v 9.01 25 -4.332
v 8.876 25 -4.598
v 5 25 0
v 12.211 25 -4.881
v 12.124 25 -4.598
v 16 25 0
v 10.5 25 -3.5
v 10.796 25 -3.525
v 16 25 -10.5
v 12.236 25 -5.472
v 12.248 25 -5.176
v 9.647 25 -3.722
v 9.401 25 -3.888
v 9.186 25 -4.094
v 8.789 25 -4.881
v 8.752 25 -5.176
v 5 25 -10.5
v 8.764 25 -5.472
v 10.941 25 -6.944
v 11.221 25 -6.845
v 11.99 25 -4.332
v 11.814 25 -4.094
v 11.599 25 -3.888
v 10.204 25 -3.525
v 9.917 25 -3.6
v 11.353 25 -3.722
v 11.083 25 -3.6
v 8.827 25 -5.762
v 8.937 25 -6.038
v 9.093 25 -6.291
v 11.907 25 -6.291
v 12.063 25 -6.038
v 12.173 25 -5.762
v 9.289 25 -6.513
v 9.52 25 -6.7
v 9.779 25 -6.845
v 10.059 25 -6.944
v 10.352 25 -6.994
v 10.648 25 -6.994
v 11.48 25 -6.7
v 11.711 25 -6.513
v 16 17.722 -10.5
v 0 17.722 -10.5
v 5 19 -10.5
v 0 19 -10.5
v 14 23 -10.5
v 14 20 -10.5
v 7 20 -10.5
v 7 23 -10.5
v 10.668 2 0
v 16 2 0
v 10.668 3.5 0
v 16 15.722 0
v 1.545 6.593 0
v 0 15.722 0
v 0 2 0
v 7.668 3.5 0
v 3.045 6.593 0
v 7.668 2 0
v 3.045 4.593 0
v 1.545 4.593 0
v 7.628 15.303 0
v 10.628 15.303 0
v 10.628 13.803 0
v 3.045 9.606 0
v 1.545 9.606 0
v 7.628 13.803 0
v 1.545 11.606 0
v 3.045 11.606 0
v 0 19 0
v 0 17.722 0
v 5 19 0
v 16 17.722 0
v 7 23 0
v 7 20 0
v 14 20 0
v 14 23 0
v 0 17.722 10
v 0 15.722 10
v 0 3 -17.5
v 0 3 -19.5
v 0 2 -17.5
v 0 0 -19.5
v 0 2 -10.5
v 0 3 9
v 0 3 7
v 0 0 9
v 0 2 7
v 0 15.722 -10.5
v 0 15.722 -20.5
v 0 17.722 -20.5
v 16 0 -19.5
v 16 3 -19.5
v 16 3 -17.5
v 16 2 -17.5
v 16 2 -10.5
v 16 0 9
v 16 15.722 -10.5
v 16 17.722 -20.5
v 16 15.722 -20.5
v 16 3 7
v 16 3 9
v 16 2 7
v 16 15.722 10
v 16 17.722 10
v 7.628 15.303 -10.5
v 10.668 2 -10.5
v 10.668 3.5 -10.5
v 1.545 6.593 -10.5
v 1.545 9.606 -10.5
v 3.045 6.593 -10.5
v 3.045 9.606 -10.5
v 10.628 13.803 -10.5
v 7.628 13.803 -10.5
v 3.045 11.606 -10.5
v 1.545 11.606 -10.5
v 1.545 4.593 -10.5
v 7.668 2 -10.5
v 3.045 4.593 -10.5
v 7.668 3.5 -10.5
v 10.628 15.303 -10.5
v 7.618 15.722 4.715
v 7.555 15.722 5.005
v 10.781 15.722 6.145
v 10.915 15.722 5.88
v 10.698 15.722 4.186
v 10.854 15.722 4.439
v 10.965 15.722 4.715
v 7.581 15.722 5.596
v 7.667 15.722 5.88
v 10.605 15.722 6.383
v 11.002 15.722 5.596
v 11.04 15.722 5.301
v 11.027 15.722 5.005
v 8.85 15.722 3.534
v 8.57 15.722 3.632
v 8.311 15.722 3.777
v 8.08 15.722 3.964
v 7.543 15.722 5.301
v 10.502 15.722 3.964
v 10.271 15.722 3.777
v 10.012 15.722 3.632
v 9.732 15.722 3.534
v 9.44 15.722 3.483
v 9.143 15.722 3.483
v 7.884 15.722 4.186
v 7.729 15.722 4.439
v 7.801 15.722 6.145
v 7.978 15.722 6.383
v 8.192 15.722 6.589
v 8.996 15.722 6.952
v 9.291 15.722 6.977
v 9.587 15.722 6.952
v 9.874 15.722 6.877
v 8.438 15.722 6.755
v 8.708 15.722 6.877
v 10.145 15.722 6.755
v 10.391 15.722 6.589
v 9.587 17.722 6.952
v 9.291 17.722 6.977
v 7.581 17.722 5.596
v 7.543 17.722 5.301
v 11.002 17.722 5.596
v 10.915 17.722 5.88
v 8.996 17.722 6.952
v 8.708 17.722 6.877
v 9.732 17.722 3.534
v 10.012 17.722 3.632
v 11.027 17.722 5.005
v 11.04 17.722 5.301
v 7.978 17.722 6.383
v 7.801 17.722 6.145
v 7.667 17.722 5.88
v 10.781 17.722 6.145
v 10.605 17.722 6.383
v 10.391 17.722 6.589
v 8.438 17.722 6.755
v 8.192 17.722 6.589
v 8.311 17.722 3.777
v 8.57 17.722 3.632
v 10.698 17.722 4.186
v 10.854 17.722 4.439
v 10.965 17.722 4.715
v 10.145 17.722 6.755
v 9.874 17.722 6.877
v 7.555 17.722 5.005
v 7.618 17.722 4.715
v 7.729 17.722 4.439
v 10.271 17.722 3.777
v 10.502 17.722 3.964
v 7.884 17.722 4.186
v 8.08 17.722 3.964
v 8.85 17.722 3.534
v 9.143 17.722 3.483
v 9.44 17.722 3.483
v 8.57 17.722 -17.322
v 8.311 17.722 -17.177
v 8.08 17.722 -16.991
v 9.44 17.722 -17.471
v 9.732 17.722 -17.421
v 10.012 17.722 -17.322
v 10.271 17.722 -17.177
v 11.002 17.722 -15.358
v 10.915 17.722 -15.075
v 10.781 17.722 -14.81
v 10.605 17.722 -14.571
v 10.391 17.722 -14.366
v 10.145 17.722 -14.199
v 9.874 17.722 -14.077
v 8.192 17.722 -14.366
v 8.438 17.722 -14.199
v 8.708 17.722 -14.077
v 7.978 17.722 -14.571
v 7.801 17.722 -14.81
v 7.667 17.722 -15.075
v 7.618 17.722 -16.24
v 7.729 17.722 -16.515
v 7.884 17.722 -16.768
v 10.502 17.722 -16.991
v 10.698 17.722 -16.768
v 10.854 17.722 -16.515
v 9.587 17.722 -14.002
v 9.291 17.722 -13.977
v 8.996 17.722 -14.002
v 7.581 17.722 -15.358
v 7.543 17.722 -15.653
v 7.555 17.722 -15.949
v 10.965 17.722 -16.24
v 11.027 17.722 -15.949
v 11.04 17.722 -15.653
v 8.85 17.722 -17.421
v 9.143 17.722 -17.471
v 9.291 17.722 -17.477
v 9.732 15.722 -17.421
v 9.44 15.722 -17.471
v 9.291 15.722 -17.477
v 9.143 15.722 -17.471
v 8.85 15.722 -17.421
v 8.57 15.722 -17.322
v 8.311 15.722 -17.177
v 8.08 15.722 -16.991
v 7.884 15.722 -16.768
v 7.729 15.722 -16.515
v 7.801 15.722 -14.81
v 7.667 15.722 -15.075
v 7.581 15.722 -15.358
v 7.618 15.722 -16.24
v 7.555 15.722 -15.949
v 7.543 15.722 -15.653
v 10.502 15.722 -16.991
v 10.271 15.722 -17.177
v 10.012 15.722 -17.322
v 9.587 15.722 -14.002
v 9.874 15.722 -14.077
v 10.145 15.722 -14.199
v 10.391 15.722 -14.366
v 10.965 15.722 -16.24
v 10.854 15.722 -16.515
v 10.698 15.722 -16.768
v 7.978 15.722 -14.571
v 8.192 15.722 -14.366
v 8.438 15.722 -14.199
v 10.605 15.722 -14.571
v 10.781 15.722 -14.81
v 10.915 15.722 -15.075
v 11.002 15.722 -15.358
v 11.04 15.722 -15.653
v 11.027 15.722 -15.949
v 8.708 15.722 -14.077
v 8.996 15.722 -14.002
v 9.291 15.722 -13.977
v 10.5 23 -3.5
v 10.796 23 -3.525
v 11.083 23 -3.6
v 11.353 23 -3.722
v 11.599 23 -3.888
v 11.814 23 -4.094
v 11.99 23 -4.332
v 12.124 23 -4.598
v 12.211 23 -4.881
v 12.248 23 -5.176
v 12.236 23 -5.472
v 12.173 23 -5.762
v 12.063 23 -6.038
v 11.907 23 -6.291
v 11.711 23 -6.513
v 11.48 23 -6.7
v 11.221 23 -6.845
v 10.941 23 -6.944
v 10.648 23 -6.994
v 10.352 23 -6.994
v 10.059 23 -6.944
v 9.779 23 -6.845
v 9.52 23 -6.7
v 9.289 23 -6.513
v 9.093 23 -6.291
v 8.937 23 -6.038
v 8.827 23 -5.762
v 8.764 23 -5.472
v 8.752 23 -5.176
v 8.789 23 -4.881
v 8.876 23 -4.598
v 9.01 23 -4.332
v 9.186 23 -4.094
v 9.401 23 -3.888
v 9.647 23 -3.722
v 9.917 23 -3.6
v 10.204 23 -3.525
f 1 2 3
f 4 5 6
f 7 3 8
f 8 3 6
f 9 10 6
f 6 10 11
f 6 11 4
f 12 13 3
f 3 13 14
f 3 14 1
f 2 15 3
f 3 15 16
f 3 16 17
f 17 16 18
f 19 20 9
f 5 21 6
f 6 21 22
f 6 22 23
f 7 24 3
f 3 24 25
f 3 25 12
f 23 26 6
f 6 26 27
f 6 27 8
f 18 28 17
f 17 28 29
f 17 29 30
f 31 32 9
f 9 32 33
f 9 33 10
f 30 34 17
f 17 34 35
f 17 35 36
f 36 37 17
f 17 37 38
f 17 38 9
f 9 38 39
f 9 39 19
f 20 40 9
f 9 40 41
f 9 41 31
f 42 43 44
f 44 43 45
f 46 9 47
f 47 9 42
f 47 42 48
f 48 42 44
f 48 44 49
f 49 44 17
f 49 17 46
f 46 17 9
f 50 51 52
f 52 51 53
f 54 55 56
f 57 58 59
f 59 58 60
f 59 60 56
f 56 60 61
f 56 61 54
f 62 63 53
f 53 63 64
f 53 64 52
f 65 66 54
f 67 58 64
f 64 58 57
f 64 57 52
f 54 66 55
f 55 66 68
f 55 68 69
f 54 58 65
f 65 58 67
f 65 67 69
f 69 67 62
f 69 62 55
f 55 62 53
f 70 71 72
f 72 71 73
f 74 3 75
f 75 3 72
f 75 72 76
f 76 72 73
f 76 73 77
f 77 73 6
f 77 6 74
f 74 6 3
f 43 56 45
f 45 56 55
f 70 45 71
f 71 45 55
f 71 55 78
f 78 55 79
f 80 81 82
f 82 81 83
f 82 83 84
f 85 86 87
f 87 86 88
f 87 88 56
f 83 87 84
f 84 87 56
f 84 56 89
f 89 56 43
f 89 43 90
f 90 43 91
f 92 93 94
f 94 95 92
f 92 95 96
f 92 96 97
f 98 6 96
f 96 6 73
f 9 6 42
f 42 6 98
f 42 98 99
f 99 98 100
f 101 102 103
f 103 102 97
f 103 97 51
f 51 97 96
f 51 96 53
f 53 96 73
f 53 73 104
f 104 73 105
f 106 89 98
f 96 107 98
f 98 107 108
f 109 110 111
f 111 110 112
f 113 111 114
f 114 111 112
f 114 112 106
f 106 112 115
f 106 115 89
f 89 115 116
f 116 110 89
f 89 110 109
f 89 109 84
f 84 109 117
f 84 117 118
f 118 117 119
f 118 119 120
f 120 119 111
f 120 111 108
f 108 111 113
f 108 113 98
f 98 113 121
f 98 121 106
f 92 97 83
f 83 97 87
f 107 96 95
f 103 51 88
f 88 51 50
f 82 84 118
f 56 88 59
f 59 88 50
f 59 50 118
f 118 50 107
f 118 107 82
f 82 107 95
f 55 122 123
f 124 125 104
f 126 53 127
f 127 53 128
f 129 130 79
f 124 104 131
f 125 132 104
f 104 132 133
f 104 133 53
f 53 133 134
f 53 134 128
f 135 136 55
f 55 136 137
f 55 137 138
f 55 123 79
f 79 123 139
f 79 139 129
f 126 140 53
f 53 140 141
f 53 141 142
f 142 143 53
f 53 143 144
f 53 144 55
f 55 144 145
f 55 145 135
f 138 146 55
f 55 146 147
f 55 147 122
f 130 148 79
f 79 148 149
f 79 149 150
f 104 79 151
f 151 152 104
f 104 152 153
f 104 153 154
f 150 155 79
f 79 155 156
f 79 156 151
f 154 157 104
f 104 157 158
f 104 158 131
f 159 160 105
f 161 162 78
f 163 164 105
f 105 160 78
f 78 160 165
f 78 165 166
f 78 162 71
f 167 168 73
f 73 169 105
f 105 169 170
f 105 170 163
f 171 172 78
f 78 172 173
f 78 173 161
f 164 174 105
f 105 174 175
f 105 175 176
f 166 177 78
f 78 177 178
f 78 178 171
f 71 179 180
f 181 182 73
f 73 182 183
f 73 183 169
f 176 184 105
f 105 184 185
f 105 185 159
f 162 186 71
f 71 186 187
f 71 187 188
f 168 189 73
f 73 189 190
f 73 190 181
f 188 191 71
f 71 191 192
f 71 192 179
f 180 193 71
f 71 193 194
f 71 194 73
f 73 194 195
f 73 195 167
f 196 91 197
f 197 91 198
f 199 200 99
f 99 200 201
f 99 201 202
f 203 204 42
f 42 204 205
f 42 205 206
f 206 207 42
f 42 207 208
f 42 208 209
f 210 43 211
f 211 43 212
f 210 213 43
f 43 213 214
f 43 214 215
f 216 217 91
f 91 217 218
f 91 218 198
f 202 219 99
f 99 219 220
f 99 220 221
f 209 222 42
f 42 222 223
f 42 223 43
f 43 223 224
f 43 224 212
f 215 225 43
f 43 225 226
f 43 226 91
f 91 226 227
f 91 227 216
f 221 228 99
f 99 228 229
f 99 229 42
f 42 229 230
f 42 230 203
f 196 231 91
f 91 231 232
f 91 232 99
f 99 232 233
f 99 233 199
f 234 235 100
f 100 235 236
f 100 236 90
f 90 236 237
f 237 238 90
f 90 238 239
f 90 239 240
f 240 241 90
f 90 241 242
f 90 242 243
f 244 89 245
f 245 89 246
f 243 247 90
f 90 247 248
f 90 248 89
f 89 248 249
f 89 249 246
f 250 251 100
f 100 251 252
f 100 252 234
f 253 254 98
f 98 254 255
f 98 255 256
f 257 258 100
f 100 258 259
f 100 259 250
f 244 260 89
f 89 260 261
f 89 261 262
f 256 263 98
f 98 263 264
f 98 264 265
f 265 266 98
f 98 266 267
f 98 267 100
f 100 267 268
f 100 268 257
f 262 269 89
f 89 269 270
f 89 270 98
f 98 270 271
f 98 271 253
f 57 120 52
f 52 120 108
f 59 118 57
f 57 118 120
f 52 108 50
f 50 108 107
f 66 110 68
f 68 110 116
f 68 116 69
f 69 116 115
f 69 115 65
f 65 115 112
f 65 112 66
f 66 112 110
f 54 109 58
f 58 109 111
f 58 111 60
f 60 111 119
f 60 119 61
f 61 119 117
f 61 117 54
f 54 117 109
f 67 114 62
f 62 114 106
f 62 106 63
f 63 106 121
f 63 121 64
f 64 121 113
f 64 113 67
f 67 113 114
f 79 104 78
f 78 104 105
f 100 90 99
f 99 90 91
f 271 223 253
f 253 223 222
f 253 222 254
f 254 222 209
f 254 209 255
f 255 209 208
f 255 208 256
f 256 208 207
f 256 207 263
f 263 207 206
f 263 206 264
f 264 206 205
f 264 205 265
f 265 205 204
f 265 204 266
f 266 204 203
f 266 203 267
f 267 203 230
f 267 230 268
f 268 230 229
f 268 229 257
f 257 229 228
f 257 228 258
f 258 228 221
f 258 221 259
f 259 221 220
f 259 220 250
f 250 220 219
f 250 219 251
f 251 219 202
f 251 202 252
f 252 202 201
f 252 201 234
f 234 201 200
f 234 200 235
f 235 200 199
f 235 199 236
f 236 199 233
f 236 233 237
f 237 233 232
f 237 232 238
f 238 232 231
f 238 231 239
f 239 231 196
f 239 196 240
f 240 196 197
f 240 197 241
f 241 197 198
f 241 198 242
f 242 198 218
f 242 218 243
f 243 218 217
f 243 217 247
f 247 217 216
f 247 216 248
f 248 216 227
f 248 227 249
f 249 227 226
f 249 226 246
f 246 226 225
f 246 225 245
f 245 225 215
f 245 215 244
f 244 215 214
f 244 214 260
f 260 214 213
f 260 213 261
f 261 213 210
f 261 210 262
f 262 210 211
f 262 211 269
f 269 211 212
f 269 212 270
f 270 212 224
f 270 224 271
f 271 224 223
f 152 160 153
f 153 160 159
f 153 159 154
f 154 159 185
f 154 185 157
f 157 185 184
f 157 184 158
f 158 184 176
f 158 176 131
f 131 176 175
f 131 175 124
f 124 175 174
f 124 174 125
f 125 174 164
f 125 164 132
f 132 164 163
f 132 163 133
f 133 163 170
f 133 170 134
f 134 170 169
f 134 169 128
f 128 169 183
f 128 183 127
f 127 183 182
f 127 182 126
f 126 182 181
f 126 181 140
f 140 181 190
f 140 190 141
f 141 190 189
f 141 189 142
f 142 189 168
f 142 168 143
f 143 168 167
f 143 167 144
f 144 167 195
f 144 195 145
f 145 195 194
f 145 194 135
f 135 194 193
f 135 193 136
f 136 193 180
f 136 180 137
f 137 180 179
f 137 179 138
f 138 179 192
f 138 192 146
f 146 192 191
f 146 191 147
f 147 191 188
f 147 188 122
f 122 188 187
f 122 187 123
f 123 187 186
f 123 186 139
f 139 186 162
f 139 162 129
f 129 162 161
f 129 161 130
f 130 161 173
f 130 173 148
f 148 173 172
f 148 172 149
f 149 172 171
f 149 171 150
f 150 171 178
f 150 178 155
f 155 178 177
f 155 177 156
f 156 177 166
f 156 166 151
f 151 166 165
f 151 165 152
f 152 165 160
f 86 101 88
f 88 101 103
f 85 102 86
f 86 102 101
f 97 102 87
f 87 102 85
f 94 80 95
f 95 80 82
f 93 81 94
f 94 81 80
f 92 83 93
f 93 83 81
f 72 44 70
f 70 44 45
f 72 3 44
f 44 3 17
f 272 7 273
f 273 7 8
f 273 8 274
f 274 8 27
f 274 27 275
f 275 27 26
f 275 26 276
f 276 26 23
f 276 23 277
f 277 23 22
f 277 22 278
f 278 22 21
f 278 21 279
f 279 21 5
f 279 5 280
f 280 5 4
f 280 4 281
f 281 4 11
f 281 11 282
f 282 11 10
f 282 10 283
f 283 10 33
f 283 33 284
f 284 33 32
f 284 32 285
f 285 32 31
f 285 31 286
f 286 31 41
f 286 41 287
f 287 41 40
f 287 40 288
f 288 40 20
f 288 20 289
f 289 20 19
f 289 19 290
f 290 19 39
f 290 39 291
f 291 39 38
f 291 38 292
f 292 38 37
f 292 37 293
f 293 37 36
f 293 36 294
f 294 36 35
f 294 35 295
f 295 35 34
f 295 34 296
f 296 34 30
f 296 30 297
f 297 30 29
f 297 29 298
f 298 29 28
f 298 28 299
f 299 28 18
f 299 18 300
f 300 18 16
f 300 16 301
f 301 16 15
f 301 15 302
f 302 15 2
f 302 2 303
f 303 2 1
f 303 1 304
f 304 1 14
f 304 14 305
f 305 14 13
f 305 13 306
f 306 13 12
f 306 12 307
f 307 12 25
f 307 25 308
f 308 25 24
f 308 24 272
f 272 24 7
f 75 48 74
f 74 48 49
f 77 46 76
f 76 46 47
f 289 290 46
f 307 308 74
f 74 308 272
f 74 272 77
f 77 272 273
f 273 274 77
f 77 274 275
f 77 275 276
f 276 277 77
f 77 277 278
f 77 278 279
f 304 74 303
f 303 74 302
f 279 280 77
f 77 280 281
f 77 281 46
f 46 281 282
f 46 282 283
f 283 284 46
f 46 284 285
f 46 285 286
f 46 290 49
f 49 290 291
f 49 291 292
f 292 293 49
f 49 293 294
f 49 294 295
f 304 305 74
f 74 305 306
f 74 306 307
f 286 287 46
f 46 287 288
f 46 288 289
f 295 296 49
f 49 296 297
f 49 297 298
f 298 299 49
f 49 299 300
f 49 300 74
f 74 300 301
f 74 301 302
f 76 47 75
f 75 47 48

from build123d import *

# Parameters (mm, degrees)
SKETCH1_W           = 16
SKETCH1_H           = 10.5
BOSS_EXTRUDE1_DEPTH = 25
SKETCH3_W           = 16
SKETCH3_H           = 2
BOSS_EXTRUDE2_DEPTH = 7
BOSS_EXTRUDE5_START = -10.5
SKETCH3_2_W         = 16
SKETCH3_2_H         = 2
BOSS_EXTRUDE5_DEPTH = 7
SKETCH2_W           = 3
SKETCH2_H           = 1.5
SKETCH2_W_2         = 1.5
SKETCH2_H_2         = 2
CUT_EXTRUDE1_DEPTH  = 20
SKETCH5_W           = 16
SKETCH5_H           = 2
BOSS_EXTRUDE3_DEPTH = 3
BOSS_EXTRUDE6_START = -24.5
SKETCH5_2_W         = 16
SKETCH5_2_H         = 2
BOSS_EXTRUDE6_DEPTH = 3
SKETCH4_R           = 1.75
CUT_EXTRUDE2_DEPTH  = 10
SKETCH6_W           = 16
SKETCH6_H           = 3
BOSS_EXTRUDE4_DEPTH = 2
BOSS_EXTRUDE7_START = -24.5
SKETCH6_2_W         = 16
SKETCH6_2_H         = 3
BOSS_EXTRUDE7_DEPTH = 2
SKETCH7_W           = 10.5
SKETCH7_H           = 6
CUT_EXTRUDE3_DEPTH  = 5
SKETCH8_R           = 1.75
CUT_EXTRUDE4_DEPTH  = 5
SKETCH10_W          = 7
SKETCH10_H          = 3
CUT_EXTRUDE5_DEPTH  = 15


with BuildPart() as part:
    # Sketch1 → Boss-Extrude1 (new body)
    with BuildSketch(Plane(origin=(0, 0, 0), x_dir=(1, 0, 0), z_dir=(0, 1, 0))):
        with Locations((8, 5.25)):
            Rectangle(SKETCH1_W, SKETCH1_H)
    extrude(amount=BOSS_EXTRUDE1_DEPTH)

    # Sketch3 → Boss-Extrude2 (add)
    with BuildSketch(Plane.XY):
        with Locations((8, 1)):
            Rectangle(SKETCH3_W, SKETCH3_H)
        with Locations((8, 16.721705876)):
            Rectangle(SKETCH3_W, SKETCH3_H)
    extrude(amount=BOSS_EXTRUDE2_DEPTH)

    # Sketch3<2> → Boss-Extrude5 (add)
    with BuildSketch(Plane.XY.offset(BOSS_EXTRUDE5_START)):
        with Locations((8, 1)):
            Rectangle(SKETCH3_2_W, SKETCH3_2_H)
        with Locations((8, 16.721705876)):
            Rectangle(SKETCH3_2_W, SKETCH3_2_H)
    extrude(amount=-BOSS_EXTRUDE5_DEPTH)

    # Sketch2 → Cut-Extrude1 (cut)
    with BuildSketch(Plane.XY):
        with Locations((9.168058596, 2.75)):
            Rectangle(SKETCH2_W, SKETCH2_H)
        with Locations((9.127915422, 14.553433745)):
            Rectangle(SKETCH2_W, SKETCH2_H)
        with Locations((2.294862544, 5.592632304)):
            Rectangle(SKETCH2_W_2, SKETCH2_H_2)
        with Locations((2.294862544, 10.60615461)):
            Rectangle(SKETCH2_W_2, SKETCH2_H_2)
    extrude(amount=-CUT_EXTRUDE1_DEPTH, mode=Mode.SUBTRACT)

    # Sketch5 → Boss-Extrude3 (add)
    with BuildSketch(Plane.XY.offset(7)):
        with Locations((8, 16.721705876)):
            Rectangle(SKETCH5_W, SKETCH5_H)
    extrude(amount=BOSS_EXTRUDE3_DEPTH)

    # Sketch5<2> → Boss-Extrude6 (add)
    with BuildSketch(Plane.XY.offset(7).offset(BOSS_EXTRUDE6_START)):
        with Locations((8, 16.721705876)):
            Rectangle(SKETCH5_2_W, SKETCH5_2_H)
    extrude(amount=-BOSS_EXTRUDE6_DEPTH)

    # Sketch4 → Cut-Extrude2 (cut)
    with BuildSketch(Plane(origin=(0, 17.721705876, 0), x_dir=(1, 0, 0), z_dir=(0, 1, 0))):
        with Locations(Location((9.291269906, -5.227094259, 0), (0, 0, 270))):
            Circle(SKETCH4_R)
        with Locations(Location((9.291269906, 15.727094259, 0), (0, 0, 90))):
            Circle(SKETCH4_R)
    extrude(amount=-CUT_EXTRUDE2_DEPTH, mode=Mode.SUBTRACT)

    # Sketch6 → Boss-Extrude4 (add)
    with BuildSketch(Plane.XY.offset(7)):
        with Locations((8, 1.5)):
            Rectangle(SKETCH6_W, SKETCH6_H)
    extrude(amount=BOSS_EXTRUDE4_DEPTH)

    # Sketch6<2> → Boss-Extrude7 (add)
    with BuildSketch(Plane.XY.offset(7).offset(BOSS_EXTRUDE7_START)):
        with Locations((8, 1.5)):
            Rectangle(SKETCH6_2_W, SKETCH6_2_H)
    extrude(amount=-BOSS_EXTRUDE7_DEPTH)

    # Sketch7 → Cut-Extrude3 (cut)
    with BuildSketch(Plane.ZY):
        with Locations((-5.25, 22)):
            Rectangle(SKETCH7_W, SKETCH7_H)
    extrude(amount=-CUT_EXTRUDE3_DEPTH, mode=Mode.SUBTRACT)

    # Sketch8 → Cut-Extrude4 (cut)
    with BuildSketch(Plane(origin=(0, 25, 0), x_dir=(1, 0, 0), z_dir=(0, 1, 0))):
        with Locations(Location((10.5, 5.25, 0), (0, 0, 270))):
            Circle(SKETCH8_R)
    extrude(amount=-CUT_EXTRUDE4_DEPTH, mode=Mode.SUBTRACT)

    # Sketch10 → Cut-Extrude5 (cut)
    with BuildSketch(Plane.XY):
        with Locations((10.5, 21.5)):
            Rectangle(SKETCH10_W, SKETCH10_H)
    extrude(amount=-CUT_EXTRUDE5_DEPTH, mode=Mode.SUBTRACT)


solid = part.part
